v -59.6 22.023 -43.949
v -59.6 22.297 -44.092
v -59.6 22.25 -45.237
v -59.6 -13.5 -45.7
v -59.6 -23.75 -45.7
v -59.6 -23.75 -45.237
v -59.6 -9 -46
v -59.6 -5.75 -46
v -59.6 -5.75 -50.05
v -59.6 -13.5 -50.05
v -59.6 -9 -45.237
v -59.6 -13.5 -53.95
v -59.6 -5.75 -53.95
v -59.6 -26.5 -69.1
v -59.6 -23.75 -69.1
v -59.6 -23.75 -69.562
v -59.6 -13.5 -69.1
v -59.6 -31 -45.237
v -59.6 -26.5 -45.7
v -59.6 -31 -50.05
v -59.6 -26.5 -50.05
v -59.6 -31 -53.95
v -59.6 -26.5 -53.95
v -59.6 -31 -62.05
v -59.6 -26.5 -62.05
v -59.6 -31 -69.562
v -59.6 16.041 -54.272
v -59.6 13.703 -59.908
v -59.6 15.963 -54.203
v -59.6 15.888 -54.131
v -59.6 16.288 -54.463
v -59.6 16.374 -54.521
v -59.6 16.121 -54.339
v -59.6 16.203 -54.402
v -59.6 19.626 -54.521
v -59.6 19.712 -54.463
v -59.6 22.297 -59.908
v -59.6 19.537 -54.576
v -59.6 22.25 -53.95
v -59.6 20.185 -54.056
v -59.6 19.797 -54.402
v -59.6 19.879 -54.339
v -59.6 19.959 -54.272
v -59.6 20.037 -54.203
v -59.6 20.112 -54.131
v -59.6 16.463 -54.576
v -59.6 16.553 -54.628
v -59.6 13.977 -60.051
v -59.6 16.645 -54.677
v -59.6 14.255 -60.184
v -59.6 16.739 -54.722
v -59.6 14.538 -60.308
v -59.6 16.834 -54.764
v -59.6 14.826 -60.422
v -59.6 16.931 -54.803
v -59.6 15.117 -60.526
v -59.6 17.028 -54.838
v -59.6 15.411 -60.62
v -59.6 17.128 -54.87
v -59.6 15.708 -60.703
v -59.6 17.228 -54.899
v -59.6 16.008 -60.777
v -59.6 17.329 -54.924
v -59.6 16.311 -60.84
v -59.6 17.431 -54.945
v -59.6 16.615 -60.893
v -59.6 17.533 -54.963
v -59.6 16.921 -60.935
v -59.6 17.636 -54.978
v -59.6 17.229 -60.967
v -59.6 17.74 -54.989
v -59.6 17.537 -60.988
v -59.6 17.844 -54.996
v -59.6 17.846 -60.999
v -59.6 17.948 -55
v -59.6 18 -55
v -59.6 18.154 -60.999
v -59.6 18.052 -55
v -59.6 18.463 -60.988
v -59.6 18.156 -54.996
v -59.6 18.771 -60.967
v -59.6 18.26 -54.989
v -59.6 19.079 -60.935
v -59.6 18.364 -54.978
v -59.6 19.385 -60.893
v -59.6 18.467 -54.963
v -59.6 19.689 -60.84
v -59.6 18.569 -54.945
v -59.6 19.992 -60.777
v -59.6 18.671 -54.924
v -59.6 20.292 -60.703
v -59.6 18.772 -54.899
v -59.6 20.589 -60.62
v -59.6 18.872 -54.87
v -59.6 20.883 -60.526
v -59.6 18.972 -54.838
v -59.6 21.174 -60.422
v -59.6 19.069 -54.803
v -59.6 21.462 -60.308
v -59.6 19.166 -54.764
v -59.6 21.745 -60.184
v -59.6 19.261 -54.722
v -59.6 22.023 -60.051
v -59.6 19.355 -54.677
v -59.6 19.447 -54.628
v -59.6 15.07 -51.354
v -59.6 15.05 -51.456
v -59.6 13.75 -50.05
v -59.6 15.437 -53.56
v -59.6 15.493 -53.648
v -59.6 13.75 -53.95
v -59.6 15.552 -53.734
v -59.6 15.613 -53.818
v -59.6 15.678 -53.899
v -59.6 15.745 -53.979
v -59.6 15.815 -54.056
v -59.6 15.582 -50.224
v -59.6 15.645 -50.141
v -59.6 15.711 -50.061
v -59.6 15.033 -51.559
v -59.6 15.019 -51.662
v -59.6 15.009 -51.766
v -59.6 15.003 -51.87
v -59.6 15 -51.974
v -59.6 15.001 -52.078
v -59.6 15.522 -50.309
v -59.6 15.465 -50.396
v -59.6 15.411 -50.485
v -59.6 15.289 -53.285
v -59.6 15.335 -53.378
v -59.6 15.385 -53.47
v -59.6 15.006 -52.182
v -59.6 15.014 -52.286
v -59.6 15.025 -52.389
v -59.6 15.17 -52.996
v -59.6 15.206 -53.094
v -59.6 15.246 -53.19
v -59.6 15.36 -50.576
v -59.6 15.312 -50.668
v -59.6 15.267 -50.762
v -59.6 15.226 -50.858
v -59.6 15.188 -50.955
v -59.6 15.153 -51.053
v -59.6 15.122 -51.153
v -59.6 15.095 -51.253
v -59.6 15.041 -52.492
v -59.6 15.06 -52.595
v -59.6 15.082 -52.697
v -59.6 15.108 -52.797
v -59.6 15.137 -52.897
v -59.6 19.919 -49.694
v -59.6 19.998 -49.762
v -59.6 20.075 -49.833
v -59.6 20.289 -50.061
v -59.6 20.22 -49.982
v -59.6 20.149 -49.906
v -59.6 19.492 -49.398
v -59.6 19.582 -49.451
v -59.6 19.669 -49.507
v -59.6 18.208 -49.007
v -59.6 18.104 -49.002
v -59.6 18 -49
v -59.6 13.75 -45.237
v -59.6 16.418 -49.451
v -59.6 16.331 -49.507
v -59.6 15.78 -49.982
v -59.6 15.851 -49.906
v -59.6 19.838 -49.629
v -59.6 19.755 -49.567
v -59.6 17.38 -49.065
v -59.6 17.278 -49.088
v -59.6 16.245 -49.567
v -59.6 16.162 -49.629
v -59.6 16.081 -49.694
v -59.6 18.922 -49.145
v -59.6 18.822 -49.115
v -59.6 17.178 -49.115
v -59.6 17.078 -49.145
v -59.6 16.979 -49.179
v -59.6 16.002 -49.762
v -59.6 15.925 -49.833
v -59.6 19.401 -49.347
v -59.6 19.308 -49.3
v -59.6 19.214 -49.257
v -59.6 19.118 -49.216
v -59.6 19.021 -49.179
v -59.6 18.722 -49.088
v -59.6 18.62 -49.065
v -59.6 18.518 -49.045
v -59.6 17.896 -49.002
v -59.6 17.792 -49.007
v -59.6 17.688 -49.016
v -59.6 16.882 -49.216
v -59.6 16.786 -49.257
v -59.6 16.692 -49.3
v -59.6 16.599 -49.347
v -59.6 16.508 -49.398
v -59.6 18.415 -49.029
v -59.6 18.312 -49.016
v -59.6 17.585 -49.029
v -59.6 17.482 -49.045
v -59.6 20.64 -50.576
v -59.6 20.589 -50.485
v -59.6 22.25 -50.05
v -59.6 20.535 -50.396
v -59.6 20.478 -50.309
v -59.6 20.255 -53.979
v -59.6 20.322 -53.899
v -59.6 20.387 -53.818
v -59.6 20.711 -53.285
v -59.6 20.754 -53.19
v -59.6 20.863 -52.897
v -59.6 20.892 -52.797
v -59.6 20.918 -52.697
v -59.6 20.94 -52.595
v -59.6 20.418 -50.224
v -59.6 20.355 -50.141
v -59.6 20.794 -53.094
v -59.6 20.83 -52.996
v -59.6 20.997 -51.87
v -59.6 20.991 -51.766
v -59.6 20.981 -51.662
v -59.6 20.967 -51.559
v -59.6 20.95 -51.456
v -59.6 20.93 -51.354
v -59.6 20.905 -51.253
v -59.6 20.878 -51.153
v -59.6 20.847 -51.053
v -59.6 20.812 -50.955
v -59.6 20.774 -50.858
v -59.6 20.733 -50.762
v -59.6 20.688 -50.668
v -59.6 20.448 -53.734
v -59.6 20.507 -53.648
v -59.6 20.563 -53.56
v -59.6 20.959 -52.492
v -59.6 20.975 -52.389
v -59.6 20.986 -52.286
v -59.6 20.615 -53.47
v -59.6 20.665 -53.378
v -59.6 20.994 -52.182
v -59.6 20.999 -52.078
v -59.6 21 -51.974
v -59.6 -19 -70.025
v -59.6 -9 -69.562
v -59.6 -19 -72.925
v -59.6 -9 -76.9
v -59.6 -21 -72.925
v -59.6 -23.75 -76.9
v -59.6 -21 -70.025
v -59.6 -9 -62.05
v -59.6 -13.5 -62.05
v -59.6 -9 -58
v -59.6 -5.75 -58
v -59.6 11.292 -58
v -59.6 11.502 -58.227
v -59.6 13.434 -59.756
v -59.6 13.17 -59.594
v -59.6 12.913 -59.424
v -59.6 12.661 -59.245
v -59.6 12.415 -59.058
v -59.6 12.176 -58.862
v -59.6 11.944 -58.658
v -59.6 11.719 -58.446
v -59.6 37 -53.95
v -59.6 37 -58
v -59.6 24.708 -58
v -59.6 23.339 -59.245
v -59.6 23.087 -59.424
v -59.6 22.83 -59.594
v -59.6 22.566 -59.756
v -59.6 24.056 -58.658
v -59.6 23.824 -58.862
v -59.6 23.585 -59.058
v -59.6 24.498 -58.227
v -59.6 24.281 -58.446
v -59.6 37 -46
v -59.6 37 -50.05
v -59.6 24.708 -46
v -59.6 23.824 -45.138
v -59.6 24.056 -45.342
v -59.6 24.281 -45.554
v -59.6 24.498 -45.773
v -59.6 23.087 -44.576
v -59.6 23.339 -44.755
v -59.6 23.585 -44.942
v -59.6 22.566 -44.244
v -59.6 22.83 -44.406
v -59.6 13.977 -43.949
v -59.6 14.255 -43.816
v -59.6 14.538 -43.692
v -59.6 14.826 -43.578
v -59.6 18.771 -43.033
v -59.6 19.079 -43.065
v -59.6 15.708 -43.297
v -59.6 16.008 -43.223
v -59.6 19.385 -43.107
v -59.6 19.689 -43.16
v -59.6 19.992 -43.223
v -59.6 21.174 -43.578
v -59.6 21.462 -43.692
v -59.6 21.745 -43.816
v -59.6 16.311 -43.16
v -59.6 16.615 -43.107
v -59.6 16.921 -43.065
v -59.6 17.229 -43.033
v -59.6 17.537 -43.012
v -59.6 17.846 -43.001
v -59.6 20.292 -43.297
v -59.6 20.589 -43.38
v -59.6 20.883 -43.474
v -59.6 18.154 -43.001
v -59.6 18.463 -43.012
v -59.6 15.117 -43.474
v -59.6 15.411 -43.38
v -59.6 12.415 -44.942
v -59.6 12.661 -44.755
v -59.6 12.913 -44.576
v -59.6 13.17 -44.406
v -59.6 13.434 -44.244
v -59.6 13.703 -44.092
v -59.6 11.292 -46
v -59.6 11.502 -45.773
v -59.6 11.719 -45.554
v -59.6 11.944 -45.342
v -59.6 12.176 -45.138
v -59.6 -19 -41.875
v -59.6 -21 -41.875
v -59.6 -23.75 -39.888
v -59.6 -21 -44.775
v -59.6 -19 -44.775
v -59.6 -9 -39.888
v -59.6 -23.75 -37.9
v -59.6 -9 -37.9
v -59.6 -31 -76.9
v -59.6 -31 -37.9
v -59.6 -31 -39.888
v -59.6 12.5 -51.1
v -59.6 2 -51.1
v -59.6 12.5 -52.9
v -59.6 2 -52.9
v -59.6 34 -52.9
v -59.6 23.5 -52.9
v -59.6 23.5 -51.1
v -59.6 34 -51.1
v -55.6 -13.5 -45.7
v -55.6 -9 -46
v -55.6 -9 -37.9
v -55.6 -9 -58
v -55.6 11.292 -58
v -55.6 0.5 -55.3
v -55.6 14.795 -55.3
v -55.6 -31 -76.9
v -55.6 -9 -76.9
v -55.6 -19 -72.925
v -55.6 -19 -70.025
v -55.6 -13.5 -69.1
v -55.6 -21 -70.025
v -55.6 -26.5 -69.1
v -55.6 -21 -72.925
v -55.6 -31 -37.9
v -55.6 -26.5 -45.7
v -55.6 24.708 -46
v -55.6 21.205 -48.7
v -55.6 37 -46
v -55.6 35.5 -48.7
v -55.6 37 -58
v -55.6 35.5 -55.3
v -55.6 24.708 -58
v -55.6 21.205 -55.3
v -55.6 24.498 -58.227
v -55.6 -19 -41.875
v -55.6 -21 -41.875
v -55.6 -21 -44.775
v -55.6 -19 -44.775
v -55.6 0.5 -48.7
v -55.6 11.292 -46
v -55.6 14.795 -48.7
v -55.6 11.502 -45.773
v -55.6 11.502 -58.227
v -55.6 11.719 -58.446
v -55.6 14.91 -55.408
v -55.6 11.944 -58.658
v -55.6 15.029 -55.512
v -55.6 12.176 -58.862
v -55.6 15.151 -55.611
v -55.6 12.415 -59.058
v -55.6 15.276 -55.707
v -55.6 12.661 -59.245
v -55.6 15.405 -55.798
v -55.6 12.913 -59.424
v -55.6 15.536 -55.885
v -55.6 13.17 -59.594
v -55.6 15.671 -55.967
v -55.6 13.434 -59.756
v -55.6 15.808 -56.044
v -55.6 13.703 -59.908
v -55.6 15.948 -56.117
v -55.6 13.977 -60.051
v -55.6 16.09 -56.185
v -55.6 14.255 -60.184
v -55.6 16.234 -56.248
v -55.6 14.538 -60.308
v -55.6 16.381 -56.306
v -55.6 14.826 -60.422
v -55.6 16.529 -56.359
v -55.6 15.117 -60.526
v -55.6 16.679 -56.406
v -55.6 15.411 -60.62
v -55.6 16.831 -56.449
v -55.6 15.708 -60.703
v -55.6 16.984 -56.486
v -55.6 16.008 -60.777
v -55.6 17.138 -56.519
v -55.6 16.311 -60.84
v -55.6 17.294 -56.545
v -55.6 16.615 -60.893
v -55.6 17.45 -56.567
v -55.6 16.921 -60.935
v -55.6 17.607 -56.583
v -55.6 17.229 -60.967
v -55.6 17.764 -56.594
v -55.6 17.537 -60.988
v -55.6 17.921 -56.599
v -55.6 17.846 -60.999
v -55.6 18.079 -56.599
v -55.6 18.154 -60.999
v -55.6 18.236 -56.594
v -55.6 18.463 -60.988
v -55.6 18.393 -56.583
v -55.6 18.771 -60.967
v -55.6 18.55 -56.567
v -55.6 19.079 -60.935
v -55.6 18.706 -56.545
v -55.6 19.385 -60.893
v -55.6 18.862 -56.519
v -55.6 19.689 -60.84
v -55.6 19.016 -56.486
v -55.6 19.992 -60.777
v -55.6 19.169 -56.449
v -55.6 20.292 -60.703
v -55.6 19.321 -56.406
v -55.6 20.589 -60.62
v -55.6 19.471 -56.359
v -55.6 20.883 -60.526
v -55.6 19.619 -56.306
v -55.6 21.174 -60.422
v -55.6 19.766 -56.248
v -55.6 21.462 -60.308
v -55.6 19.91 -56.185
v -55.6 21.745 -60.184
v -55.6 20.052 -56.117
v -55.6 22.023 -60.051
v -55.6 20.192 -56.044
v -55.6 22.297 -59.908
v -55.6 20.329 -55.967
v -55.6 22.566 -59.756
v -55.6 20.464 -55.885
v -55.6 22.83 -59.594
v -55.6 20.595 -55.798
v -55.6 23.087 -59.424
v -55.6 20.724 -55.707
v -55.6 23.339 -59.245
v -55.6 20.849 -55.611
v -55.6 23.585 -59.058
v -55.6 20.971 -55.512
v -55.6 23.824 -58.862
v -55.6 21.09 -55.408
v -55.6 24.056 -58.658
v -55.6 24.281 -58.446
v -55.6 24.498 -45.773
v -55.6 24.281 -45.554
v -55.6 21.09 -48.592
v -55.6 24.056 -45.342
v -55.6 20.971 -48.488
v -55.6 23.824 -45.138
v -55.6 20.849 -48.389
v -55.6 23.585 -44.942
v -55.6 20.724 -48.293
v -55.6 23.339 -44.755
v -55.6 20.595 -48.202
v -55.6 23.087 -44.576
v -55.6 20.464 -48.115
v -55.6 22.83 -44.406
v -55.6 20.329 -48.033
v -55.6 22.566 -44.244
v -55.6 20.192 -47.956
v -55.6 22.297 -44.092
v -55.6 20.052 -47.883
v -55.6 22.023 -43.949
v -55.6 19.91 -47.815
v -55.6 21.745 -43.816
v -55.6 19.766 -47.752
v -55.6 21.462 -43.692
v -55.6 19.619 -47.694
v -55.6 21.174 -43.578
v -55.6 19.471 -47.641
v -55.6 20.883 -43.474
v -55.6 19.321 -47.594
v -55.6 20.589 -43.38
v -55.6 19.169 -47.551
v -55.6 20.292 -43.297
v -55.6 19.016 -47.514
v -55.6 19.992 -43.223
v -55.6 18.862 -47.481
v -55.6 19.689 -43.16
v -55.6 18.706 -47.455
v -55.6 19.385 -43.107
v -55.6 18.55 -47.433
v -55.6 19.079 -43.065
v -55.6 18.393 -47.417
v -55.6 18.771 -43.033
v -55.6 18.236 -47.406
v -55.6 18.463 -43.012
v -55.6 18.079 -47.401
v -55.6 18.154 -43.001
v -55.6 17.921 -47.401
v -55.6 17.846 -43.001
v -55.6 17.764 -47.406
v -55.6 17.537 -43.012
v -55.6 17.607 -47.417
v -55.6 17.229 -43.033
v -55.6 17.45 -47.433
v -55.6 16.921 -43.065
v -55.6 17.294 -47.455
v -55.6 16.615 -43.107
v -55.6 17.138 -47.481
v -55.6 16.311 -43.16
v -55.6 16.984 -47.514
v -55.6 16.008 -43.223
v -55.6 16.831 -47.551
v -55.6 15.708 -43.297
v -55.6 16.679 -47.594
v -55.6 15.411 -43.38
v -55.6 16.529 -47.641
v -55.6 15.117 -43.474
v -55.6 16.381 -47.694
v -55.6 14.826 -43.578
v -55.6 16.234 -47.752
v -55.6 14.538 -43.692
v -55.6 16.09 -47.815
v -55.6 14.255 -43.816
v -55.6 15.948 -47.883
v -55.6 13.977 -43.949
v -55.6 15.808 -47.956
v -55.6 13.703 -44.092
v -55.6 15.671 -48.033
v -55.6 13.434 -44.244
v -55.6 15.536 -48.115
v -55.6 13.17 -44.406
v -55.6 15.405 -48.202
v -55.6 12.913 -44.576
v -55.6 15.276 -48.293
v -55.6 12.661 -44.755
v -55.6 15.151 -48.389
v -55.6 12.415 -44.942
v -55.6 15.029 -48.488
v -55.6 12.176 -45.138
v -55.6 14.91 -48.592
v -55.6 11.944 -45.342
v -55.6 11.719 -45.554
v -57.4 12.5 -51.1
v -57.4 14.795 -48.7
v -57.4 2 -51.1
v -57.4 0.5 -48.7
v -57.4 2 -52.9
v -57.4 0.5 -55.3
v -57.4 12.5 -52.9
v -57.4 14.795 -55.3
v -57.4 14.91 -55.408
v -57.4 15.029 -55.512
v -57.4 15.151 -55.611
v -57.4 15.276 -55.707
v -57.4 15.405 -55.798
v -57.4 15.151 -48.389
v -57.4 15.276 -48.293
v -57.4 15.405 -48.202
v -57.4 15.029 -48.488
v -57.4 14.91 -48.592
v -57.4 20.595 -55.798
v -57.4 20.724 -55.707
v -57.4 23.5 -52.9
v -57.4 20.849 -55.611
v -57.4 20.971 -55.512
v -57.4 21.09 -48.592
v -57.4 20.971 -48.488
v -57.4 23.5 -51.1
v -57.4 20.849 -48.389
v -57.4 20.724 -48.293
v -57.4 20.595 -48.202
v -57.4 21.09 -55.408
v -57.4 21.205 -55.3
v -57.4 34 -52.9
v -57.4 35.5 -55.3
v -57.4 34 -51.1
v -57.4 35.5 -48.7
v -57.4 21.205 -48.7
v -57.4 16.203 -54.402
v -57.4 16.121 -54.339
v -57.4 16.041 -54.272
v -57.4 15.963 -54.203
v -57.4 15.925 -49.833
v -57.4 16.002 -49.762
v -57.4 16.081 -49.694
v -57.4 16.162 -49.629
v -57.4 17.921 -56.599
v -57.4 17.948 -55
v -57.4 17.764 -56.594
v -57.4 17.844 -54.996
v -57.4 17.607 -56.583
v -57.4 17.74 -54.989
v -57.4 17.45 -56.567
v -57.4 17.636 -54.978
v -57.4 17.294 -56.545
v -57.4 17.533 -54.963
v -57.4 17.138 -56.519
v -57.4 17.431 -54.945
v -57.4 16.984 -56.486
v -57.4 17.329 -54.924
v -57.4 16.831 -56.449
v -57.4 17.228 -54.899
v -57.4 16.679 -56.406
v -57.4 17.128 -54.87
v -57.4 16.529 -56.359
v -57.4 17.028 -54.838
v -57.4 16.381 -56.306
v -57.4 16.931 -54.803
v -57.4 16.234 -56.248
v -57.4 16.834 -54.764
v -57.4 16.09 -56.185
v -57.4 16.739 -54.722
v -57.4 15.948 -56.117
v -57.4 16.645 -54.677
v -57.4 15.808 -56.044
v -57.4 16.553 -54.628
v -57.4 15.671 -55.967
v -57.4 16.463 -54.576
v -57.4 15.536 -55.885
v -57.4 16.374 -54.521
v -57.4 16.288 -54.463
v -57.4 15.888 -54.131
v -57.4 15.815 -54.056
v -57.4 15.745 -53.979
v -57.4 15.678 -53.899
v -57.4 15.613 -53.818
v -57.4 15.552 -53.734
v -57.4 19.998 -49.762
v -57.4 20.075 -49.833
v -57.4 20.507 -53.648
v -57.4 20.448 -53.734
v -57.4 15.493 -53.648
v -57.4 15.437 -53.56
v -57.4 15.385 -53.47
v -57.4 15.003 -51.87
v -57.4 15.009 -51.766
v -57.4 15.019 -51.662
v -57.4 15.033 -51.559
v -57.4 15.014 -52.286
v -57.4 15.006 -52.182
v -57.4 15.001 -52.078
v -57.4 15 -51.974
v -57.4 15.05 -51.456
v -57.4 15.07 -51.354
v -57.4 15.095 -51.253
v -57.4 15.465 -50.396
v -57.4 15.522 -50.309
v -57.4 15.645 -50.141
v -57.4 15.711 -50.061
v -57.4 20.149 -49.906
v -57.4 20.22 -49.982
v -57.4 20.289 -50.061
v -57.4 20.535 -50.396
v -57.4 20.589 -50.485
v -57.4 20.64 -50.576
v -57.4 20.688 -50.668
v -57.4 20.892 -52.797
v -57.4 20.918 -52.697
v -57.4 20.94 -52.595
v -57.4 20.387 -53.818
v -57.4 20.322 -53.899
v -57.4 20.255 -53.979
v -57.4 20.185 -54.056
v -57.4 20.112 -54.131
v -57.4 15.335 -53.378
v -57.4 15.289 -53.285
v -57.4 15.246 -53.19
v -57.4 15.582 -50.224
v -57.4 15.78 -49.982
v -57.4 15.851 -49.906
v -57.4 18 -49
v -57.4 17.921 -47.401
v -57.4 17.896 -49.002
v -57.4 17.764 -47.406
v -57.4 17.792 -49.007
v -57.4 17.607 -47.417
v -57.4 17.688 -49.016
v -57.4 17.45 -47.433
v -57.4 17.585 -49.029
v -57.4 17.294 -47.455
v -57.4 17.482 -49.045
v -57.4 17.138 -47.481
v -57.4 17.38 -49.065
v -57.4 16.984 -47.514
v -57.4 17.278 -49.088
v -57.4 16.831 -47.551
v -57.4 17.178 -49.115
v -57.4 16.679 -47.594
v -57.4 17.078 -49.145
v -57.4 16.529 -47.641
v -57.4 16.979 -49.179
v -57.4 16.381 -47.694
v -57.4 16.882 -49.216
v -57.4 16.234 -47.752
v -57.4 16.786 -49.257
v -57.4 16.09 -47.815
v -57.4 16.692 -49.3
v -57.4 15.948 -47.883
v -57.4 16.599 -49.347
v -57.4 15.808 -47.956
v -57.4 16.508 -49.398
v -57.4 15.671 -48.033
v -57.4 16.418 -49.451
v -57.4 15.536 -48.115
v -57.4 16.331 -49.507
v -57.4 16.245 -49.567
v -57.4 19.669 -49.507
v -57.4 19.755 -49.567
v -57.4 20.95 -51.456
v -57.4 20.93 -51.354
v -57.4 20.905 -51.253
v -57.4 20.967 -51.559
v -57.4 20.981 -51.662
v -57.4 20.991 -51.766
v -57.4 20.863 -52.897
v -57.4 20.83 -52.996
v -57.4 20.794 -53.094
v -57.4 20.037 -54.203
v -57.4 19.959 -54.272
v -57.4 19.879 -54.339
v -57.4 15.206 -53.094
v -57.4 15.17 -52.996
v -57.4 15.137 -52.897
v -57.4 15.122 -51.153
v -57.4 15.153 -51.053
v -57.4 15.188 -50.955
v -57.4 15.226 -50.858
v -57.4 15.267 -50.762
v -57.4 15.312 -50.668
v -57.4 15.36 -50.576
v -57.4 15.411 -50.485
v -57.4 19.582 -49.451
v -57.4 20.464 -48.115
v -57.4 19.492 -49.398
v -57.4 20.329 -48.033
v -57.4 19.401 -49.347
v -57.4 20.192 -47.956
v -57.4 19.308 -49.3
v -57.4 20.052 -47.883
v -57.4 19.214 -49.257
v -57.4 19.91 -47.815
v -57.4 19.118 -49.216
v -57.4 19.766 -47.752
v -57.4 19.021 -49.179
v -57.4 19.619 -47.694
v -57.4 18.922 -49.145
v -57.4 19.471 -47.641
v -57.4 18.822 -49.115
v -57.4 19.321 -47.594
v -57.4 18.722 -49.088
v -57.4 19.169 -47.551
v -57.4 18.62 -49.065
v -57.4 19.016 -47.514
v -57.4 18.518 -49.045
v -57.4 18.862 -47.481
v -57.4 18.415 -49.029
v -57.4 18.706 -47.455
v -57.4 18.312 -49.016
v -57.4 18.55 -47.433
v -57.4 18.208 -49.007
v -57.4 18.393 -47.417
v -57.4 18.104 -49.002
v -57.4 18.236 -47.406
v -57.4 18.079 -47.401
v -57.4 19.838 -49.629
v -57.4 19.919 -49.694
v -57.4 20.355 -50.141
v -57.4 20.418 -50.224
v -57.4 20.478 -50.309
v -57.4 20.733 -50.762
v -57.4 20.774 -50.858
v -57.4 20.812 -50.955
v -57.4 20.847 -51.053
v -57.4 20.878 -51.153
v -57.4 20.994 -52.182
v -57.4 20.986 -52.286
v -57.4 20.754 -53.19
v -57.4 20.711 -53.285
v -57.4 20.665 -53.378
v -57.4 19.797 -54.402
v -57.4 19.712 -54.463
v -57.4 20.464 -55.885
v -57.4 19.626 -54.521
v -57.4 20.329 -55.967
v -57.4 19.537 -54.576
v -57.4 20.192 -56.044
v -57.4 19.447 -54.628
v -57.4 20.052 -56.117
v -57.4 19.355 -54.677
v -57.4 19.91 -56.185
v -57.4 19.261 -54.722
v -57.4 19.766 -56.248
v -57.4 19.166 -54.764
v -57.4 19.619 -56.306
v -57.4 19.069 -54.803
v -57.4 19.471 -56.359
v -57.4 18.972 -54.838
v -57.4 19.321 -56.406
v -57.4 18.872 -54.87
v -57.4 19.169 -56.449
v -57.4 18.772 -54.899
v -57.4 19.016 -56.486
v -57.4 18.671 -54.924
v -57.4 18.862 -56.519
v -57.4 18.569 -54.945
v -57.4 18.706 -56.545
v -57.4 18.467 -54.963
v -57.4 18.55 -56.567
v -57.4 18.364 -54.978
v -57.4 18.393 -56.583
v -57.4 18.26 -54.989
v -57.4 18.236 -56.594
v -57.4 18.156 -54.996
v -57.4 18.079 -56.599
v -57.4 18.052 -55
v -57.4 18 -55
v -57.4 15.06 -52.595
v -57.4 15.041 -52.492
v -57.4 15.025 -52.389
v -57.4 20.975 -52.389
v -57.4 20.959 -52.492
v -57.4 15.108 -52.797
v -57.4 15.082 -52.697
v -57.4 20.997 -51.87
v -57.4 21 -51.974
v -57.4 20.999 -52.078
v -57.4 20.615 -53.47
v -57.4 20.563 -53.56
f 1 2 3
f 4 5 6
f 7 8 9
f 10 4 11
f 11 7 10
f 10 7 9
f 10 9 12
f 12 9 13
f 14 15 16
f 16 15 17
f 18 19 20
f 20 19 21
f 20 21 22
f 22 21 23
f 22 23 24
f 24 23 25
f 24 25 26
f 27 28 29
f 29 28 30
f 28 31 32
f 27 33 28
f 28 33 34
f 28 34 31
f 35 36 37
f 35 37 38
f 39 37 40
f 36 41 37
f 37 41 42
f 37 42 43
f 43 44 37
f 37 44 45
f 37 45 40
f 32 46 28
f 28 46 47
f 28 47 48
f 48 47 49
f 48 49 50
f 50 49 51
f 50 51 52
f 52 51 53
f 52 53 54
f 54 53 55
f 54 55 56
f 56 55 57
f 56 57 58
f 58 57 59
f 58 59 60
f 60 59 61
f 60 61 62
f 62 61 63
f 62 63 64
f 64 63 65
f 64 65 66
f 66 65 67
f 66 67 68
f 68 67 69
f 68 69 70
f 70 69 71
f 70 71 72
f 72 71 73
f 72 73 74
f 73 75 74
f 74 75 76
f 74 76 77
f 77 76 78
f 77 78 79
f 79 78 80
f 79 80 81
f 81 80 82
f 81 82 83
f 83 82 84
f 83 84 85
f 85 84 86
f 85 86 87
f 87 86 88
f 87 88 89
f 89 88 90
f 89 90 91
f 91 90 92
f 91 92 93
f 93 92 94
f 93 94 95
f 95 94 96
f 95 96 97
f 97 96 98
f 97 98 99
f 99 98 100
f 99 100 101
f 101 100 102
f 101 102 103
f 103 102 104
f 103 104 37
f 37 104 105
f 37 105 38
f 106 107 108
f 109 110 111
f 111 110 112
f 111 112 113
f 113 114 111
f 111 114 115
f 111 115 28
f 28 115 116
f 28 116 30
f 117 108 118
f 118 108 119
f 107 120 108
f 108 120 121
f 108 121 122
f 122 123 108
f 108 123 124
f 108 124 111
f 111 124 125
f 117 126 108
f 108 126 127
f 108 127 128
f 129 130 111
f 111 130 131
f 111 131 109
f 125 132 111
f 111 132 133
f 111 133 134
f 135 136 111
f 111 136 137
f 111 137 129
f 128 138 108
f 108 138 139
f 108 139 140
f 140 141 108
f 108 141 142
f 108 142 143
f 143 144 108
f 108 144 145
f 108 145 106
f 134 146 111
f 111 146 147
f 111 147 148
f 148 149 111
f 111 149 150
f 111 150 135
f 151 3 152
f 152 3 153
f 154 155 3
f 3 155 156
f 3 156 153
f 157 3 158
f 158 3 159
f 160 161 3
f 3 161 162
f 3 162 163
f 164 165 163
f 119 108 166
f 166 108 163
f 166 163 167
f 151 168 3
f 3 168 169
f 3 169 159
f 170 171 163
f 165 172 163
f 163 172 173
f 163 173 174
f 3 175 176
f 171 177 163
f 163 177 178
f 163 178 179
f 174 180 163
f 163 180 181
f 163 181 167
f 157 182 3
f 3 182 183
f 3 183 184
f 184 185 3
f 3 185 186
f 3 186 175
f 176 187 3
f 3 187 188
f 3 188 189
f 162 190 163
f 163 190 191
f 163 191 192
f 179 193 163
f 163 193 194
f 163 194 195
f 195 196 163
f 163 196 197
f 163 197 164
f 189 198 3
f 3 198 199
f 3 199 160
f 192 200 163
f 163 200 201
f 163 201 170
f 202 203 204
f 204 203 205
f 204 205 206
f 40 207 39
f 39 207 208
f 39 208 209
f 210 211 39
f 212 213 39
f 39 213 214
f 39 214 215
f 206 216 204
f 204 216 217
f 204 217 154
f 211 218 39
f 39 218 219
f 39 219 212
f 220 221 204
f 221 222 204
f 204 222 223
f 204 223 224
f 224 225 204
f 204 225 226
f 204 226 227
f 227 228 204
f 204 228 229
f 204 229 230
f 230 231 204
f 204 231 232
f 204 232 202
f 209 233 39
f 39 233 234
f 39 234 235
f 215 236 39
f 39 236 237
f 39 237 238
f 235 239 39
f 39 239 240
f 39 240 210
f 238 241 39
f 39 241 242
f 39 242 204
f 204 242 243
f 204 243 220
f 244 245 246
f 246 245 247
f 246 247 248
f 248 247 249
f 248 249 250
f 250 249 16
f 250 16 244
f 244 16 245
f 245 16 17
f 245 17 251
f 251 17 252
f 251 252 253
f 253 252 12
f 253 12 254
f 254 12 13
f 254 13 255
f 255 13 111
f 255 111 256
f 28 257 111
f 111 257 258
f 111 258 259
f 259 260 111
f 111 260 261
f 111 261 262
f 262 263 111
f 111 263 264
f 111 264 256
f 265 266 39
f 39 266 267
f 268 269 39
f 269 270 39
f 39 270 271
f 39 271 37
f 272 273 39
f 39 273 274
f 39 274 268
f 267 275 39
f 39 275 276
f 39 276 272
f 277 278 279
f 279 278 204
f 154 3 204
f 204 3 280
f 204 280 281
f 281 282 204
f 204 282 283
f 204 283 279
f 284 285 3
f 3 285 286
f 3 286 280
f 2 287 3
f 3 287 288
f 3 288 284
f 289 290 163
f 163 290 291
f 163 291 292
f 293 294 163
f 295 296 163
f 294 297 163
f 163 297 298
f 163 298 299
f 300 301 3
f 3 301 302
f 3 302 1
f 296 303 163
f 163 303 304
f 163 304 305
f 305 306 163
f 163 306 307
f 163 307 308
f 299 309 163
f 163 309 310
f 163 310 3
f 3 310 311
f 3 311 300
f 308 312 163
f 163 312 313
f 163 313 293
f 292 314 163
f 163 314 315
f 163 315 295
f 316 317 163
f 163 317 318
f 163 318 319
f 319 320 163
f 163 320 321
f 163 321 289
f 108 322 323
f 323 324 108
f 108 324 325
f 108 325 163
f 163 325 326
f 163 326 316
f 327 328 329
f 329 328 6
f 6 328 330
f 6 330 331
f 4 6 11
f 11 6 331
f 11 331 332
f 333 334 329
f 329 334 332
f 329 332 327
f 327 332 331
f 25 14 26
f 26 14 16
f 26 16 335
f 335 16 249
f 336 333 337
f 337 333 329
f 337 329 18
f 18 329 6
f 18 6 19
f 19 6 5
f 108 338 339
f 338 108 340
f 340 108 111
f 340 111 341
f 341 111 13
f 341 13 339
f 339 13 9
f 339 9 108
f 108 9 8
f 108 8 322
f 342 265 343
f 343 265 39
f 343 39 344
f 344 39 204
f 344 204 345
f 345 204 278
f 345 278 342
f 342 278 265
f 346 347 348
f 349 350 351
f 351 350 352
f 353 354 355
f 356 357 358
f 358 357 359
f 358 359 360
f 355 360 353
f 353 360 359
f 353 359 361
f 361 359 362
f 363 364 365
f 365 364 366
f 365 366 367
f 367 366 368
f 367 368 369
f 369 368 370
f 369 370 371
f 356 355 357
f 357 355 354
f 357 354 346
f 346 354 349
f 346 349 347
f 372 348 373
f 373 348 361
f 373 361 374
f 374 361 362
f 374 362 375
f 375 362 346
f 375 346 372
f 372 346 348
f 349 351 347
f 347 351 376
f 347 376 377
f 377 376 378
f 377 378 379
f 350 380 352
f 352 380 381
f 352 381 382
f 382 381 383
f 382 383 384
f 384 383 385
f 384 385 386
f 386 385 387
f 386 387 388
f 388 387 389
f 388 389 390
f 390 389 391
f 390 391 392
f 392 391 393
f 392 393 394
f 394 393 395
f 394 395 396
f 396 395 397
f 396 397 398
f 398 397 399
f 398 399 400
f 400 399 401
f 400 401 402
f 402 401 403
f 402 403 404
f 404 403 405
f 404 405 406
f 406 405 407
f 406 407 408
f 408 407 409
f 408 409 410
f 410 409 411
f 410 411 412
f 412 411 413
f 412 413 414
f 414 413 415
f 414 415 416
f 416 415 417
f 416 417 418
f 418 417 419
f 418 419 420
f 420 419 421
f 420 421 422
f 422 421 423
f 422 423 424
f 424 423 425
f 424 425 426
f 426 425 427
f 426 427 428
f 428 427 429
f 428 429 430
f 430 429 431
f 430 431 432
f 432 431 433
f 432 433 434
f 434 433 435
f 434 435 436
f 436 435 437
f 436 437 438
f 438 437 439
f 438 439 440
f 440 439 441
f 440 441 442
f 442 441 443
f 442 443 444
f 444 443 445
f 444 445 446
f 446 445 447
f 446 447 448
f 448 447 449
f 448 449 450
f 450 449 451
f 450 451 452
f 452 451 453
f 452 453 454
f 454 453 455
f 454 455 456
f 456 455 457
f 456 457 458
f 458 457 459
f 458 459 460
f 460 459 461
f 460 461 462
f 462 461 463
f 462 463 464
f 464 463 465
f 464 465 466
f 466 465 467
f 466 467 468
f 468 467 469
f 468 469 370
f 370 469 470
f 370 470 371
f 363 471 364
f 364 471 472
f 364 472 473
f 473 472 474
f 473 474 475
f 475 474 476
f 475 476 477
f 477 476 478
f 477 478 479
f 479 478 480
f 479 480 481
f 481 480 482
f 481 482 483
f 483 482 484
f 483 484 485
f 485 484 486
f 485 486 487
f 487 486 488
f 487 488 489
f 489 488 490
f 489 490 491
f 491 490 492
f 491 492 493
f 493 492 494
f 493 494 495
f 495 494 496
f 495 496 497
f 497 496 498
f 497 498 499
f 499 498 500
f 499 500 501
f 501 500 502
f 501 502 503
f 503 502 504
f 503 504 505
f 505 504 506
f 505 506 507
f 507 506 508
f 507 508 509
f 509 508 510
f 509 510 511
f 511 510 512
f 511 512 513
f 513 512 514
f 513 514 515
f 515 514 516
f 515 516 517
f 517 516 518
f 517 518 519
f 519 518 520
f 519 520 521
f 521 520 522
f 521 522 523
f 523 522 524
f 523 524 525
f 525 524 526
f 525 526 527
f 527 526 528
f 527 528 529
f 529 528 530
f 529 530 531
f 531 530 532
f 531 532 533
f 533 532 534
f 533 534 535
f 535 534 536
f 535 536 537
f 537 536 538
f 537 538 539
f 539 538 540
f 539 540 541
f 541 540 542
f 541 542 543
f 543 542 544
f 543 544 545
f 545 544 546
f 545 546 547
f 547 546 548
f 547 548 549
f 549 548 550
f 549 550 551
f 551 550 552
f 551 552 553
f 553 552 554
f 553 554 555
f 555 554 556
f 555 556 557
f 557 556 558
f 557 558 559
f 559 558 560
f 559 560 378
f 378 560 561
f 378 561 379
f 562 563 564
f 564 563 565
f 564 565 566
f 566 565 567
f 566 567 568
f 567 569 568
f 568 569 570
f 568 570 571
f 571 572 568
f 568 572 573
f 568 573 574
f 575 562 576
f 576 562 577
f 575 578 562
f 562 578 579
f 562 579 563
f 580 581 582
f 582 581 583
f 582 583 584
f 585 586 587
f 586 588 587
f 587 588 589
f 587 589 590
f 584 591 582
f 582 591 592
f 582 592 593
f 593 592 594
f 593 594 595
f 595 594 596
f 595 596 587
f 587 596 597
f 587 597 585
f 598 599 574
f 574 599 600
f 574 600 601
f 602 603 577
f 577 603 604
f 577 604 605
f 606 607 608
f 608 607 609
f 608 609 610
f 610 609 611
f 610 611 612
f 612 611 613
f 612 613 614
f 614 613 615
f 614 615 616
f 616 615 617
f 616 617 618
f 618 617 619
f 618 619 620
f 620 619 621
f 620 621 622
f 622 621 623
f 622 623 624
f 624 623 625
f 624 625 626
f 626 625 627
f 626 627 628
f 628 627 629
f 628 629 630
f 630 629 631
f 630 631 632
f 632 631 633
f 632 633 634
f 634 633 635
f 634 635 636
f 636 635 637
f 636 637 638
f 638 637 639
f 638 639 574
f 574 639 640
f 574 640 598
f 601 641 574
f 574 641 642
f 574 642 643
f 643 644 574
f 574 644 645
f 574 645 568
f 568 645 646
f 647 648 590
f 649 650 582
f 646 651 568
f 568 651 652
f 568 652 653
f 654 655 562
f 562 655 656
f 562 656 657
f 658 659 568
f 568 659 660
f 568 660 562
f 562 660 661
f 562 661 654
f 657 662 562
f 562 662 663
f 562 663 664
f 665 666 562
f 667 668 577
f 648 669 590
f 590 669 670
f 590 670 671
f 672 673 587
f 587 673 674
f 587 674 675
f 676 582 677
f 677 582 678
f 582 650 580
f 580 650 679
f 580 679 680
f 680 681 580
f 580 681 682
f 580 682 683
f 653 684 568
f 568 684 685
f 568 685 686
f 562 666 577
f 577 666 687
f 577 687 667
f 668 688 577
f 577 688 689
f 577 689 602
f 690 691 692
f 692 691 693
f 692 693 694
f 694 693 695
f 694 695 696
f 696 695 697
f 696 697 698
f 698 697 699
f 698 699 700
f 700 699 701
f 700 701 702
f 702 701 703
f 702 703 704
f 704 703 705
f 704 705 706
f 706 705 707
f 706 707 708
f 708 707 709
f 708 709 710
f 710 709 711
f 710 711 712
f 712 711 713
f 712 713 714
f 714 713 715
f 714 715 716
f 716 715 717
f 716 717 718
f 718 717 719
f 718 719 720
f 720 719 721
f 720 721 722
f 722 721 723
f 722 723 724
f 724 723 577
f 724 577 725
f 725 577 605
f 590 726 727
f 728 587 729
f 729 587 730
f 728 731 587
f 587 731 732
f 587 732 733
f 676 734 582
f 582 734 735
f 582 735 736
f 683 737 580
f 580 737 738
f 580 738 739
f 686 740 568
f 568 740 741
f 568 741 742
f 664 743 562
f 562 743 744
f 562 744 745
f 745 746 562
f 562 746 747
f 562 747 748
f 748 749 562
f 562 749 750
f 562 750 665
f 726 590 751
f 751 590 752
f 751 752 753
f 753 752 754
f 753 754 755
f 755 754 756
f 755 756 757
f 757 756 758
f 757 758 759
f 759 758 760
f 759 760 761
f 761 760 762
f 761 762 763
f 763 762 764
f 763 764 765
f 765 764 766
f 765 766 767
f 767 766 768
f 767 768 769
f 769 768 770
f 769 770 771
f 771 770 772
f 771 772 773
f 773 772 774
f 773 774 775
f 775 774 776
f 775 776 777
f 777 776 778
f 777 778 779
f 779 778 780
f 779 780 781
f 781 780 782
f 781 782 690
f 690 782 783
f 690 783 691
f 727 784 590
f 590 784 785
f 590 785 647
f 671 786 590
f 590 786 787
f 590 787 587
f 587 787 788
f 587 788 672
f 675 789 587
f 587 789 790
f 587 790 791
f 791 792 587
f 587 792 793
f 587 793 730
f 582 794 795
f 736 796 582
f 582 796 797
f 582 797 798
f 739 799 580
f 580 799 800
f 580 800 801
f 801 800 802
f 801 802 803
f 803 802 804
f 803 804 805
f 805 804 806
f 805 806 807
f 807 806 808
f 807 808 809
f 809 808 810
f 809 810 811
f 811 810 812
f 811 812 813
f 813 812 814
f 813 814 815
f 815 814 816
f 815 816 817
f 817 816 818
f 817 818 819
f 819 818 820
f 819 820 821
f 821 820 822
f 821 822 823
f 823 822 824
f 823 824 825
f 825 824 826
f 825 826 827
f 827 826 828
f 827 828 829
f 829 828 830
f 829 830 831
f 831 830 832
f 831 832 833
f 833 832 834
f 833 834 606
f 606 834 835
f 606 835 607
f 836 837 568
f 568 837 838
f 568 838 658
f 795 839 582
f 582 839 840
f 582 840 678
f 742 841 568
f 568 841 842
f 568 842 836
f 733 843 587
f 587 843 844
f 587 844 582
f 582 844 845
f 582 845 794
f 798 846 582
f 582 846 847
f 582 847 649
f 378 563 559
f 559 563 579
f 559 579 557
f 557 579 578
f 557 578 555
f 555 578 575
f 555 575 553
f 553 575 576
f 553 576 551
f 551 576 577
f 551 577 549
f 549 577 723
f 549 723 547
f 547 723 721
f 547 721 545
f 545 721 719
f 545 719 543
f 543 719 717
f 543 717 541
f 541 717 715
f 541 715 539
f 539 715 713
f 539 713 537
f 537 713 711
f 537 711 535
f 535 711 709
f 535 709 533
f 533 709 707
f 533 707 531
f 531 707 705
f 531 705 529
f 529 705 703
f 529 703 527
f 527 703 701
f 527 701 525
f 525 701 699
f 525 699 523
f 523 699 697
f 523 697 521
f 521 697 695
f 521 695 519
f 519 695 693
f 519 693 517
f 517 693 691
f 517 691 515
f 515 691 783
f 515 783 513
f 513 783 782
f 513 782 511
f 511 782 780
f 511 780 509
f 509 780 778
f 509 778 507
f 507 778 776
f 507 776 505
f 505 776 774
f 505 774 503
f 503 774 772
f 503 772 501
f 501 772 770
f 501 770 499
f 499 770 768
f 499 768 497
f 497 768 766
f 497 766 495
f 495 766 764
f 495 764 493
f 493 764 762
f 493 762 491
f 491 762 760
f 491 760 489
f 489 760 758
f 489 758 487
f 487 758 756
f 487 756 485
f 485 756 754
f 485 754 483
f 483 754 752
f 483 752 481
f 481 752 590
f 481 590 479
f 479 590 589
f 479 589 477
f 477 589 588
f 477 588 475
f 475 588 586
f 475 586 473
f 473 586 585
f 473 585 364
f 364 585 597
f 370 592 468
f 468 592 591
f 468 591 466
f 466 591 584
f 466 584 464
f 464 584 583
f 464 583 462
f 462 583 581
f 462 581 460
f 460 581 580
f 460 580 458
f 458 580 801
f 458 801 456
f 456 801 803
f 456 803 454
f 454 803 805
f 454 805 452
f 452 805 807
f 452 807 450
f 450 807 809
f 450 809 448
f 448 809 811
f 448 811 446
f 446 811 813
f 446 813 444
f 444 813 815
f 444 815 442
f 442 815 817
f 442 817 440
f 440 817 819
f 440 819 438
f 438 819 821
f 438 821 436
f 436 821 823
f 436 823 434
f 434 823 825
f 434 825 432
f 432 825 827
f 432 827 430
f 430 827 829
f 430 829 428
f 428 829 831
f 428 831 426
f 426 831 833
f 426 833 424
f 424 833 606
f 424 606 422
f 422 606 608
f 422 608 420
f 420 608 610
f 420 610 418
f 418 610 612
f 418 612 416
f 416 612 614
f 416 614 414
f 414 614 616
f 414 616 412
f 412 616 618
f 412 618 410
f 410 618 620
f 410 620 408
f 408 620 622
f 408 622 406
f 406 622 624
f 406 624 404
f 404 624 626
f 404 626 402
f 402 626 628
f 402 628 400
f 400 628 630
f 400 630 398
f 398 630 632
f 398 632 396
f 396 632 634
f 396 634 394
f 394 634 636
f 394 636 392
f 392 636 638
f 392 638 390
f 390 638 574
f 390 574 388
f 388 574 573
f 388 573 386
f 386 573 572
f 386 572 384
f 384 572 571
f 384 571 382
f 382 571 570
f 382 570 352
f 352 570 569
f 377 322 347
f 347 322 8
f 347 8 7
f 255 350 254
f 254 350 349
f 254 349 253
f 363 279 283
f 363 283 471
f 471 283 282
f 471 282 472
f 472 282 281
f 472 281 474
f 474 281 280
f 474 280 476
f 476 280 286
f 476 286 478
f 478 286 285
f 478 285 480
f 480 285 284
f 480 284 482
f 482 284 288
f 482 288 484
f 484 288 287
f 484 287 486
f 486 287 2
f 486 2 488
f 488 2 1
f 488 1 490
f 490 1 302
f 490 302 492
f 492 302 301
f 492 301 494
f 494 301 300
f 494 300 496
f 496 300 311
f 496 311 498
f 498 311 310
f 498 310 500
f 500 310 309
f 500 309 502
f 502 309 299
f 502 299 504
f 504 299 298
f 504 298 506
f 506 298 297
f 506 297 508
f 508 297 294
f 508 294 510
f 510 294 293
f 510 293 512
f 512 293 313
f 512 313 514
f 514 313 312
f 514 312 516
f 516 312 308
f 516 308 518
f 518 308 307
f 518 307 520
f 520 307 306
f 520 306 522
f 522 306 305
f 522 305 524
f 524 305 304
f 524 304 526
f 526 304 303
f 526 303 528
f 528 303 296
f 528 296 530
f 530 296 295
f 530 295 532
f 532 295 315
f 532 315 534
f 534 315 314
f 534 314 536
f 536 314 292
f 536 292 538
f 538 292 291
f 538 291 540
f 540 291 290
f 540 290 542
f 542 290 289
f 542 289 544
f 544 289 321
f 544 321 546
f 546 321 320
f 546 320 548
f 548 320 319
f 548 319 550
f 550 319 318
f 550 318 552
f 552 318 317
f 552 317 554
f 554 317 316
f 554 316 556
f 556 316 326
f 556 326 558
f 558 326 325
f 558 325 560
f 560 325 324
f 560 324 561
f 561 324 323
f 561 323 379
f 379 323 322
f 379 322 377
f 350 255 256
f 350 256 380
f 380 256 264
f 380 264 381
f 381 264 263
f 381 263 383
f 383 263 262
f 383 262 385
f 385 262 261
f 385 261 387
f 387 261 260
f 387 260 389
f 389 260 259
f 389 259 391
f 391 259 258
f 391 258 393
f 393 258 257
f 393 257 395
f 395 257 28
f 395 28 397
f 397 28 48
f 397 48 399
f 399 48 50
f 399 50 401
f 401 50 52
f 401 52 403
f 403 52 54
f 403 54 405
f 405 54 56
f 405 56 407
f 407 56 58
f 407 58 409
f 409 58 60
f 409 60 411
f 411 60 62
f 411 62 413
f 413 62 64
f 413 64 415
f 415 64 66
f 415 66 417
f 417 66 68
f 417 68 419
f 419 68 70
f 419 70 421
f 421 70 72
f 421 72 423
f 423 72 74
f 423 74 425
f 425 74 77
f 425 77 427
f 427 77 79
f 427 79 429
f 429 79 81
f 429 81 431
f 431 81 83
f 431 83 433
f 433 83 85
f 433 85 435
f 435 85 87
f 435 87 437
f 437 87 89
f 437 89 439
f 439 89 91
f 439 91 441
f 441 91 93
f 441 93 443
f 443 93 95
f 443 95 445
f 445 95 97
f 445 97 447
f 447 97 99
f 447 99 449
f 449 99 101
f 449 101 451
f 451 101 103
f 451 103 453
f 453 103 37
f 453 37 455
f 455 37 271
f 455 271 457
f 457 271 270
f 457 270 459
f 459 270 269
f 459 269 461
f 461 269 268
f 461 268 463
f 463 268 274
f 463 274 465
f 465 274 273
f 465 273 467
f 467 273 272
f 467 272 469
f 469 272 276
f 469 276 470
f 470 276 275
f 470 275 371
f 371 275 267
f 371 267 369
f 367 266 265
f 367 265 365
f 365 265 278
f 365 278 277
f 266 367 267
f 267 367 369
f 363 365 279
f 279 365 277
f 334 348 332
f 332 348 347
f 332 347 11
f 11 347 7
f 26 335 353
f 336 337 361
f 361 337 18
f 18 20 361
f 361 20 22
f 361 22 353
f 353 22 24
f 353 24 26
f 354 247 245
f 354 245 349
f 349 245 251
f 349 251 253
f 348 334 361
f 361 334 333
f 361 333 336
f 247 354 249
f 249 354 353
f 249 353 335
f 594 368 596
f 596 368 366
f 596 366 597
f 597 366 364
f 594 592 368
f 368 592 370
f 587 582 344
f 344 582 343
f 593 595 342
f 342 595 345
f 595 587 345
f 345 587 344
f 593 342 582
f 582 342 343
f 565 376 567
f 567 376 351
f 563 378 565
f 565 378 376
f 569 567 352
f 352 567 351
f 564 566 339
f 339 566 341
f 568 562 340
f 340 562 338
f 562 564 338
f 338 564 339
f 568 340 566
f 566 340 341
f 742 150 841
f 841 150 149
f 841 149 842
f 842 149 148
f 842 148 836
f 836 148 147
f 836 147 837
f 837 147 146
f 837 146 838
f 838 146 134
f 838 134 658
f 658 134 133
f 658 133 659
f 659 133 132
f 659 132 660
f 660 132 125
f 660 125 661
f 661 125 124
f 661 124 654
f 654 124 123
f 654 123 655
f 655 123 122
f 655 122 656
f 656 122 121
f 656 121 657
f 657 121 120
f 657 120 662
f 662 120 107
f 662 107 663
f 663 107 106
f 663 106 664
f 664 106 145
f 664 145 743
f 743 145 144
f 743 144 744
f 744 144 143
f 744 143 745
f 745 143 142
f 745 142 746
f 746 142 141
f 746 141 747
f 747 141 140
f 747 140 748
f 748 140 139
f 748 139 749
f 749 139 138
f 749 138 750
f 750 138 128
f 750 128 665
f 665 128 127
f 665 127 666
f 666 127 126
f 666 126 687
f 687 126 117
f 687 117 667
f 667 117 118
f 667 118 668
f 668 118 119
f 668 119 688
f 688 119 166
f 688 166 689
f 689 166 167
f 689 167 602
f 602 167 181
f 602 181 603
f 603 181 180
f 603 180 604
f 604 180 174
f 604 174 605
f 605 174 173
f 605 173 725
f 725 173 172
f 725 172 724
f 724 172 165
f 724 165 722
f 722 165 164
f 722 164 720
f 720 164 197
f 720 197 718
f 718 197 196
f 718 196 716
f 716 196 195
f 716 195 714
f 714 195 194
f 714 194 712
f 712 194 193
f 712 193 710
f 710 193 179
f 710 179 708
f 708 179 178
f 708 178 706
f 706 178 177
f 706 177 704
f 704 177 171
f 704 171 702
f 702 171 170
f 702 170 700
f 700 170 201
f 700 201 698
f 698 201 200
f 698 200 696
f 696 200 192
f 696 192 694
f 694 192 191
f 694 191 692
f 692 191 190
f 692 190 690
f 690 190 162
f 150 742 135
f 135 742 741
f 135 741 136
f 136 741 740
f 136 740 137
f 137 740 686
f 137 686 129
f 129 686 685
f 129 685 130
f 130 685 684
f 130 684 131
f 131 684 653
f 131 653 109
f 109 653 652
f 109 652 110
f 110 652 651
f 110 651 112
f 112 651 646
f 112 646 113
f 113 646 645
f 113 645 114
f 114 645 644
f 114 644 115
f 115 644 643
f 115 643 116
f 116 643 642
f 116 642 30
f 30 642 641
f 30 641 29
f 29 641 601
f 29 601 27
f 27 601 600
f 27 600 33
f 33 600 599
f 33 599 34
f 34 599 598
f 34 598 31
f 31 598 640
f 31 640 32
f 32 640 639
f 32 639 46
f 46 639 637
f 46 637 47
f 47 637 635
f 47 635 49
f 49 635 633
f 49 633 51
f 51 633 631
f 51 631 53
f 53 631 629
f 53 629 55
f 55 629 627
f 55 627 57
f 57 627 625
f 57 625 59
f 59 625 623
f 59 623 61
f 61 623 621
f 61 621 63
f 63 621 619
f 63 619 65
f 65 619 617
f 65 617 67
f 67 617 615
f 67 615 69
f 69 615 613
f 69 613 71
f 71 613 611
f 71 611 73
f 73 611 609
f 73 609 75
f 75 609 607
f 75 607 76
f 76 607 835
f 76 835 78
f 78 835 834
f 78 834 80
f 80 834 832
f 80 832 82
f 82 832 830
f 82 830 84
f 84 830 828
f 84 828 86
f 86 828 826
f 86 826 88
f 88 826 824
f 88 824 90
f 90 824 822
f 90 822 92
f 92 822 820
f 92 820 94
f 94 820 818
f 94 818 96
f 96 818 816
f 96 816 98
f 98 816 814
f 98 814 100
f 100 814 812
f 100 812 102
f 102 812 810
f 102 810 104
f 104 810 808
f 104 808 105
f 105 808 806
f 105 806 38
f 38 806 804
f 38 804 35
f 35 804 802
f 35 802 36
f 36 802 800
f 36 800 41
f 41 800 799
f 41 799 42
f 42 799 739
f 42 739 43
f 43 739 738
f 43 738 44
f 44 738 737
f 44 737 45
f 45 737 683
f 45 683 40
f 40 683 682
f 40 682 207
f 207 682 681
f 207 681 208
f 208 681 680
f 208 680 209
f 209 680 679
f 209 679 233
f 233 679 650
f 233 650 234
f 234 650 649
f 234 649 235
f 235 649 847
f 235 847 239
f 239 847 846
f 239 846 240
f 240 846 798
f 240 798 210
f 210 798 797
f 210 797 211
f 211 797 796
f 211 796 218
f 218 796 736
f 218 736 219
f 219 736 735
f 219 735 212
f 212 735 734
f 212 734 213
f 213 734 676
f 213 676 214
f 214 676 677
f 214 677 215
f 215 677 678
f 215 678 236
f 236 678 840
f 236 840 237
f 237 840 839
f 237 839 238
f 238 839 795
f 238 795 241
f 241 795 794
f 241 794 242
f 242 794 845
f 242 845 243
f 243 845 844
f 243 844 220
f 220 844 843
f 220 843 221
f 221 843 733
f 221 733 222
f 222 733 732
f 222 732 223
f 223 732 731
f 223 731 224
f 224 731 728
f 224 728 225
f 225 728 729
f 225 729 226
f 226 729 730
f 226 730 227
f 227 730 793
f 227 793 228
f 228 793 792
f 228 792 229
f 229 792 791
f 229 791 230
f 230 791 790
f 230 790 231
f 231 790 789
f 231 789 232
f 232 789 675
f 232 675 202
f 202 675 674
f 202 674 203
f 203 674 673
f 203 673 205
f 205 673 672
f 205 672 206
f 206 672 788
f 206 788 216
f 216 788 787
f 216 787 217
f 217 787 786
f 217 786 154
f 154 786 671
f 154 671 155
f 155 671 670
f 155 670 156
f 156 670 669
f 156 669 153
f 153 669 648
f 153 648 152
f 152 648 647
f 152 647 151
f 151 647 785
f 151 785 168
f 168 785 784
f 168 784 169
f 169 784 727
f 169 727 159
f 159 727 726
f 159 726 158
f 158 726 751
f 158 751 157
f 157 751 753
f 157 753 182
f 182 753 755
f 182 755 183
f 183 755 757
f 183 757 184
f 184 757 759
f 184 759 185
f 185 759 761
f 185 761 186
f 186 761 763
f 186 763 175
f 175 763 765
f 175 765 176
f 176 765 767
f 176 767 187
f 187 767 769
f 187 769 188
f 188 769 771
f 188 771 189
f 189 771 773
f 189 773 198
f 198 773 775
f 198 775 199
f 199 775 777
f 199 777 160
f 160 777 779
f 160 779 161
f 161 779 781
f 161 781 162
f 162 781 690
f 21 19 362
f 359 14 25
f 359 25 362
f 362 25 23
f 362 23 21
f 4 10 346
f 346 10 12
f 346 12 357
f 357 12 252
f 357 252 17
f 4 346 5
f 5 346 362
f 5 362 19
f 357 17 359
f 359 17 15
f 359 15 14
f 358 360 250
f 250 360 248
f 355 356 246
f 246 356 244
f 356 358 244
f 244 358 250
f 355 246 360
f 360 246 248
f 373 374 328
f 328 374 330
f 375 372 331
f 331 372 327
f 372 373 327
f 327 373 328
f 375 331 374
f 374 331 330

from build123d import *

# Parameters (mm, degrees)
BOSS_EXTRUDE1_START  = -59.6
SKETCH1_R            = 9
BOSS_EXTRUDE1_DEPTH  = 4
BOSS_EXTRUDE2_START  = -58
SKETCH2_W            = 4
SKETCH2_H            = 49
BOSS_EXTRUDE2_DEPTH  = 12
BOSS_EXTRUDE3_START  = -76.9
SKETCH3_W            = 4
SKETCH3_H            = 22
BOSS_EXTRUDE3_DEPTH  = 39
BOSS_EXTRUDE4_START  = -57.4
SKETCH4_R            = 4.6
BOSS_EXTRUDE4_DEPTH  = 2.3
BOSS_EXTRUDE5_START  = -55.3
SKETCH5_W            = 2.3
SKETCH5_H            = 17.5
BOSS_EXTRUDE5_DEPTH  = 6.6
BOSS_EXTRUDE6_START  = -52.9
SKETCH6_W            = 6
SKETCH6_H            = 10.5
BOSS_EXTRUDE6_DEPTH  = 1.8
BOSS_EXTRUDE7_START  = -55.3
SKETCH7_W            = 2.3
SKETCH7_H            = 17.5
BOSS_EXTRUDE7_DEPTH  = 6.6
BOSS_EXTRUDE8_START  = -52.9
SKETCH8_W            = 6
SKETCH8_H            = 10.5
BOSS_EXTRUDE8_DEPTH  = 1.8
BOSS_EXTRUDE9_START  = -60.6
SKETCH9_R            = 3
BOSS_EXTRUDE9_DEPTH  = 6
BOSS_EXTRUDE10_START = -69.1
SKETCH10_W           = 6
SKETCH10_H           = 13
BOSS_EXTRUDE10_DEPTH = 23.4
BOSS_EXTRUDE11_START = -72.925
SKETCH11_W           = 6
SKETCH11_H           = 2
BOSS_EXTRUDE11_DEPTH = 2.9
BOSS_EXTRUDE12_START = -44.775
SKETCH12_W           = 6
SKETCH12_H           = 2
BOSS_EXTRUDE12_DEPTH = 2.9


with BuildPart() as part:
    # Sketch1 → Boss-Extrude1 (new body)
    with BuildSketch(Plane(origin=(0, 0, 0), x_dir=(0, 0, -1), z_dir=(1, 0, 0)).offset(BOSS_EXTRUDE1_START)):
        with Locations((52, 18)):
            Circle(SKETCH1_R)
    extrude(amount=BOSS_EXTRUDE1_DEPTH)

    # Sketch2 → Boss-Extrude2 (add)
    with BuildSketch(Plane.XY.offset(BOSS_EXTRUDE2_START)):
        with Locations((-57.6, 12.5)):
            Rectangle(SKETCH2_W, SKETCH2_H)
    extrude(amount=BOSS_EXTRUDE2_DEPTH)

    # Sketch3 → Boss-Extrude3 (add)
    with BuildSketch(Plane.XY.offset(BOSS_EXTRUDE3_START)):
        with Locations((-57.6, -20)):
            Rectangle(SKETCH3_W, SKETCH3_H)
    extrude(amount=BOSS_EXTRUDE3_DEPTH)


with BuildPart() as body_2:
    # Sketch4 → Boss-Extrude4 (new body)
    with BuildSketch(Plane(origin=(0, 0, 0), x_dir=(0, 0, -1), z_dir=(1, 0, 0)).offset(BOSS_EXTRUDE4_START)):
        with Locations((52, 18)):
            Circle(SKETCH4_R)
    extrude(amount=BOSS_EXTRUDE4_DEPTH)


with BuildPart() as part_1:
    add(part.part)

    # Combine1: cut body 2
    add(body_2.part, mode=Mode.SUBTRACT)


with BuildPart() as body_2_2:
    # Sketch5 → Boss-Extrude5 (new body)
    with BuildSketch(Plane.XY.offset(BOSS_EXTRUDE5_START)):
        with Locations((-56.25, 26.75)):
            Rectangle(SKETCH5_W, SKETCH5_H)
    extrude(amount=BOSS_EXTRUDE5_DEPTH)


with BuildPart() as part_2:
    add(part_1.part)

    # Combine2: cut body 2 2
    add(body_2_2.part, mode=Mode.SUBTRACT)


with BuildPart() as body_2_3:
    # Sketch6 → Boss-Extrude6 (new body)
    with BuildSketch(Plane.XY.offset(BOSS_EXTRUDE6_START)):
        with Locations((-57.6, 28.75)):
            Rectangle(SKETCH6_W, SKETCH6_H)
    extrude(amount=BOSS_EXTRUDE6_DEPTH)


with BuildPart() as part_3:
    add(part_2.part)

    # Combine3: cut body 2 3
    add(body_2_3.part, mode=Mode.SUBTRACT)


with BuildPart() as body_2_4:
    # Sketch7 → Boss-Extrude7 (new body)
    with BuildSketch(Plane.XY.offset(BOSS_EXTRUDE7_START)):
        with Locations((-56.25, 9.25)):
            Rectangle(SKETCH7_W, SKETCH7_H)
    extrude(amount=BOSS_EXTRUDE7_DEPTH)


with BuildPart() as part_4:
    add(part_3.part)

    # Combine4: cut body 2 4
    add(body_2_4.part, mode=Mode.SUBTRACT)


with BuildPart() as body_2_5:
    # Sketch8 → Boss-Extrude8 (new body)
    with BuildSketch(Plane.XY.offset(BOSS_EXTRUDE8_START)):
        with Locations((-57.6, 7.25)):
            Rectangle(SKETCH8_W, SKETCH8_H)
    extrude(amount=BOSS_EXTRUDE8_DEPTH)


with BuildPart() as part_5:
    add(part_4.part)

    # Combine5: cut body 2 5
    add(body_2_5.part, mode=Mode.SUBTRACT)


with BuildPart() as body_2_6:
    # Sketch9 → Boss-Extrude9 (new body)
    with BuildSketch(Plane(origin=(0, 0, 0), x_dir=(0, 0, -1), z_dir=(1, 0, 0)).offset(BOSS_EXTRUDE9_START)):
        with Locations((52, 18)):
            Circle(SKETCH9_R)
    extrude(amount=BOSS_EXTRUDE9_DEPTH)


with BuildPart() as part_6:
    add(part_5.part)

    # Combine6: cut body 2 6
    add(body_2_6.part, mode=Mode.SUBTRACT)


with BuildPart() as body_2_7:
    # Sketch10 → Boss-Extrude10 (new body)
    with BuildSketch(Plane.XY.offset(BOSS_EXTRUDE10_START)):
        with Locations((-57.6, -20)):
            Rectangle(SKETCH10_W, SKETCH10_H)
    extrude(amount=BOSS_EXTRUDE10_DEPTH)


with BuildPart() as part_7:
    add(part_6.part)

    # Combine7: cut body 2 7
    add(body_2_7.part, mode=Mode.SUBTRACT)


with BuildPart() as body_2_8:
    # Sketch11 → Boss-Extrude11 (new body)
    with BuildSketch(Plane.XY.offset(BOSS_EXTRUDE11_START)):
        with Locations((-57.6, -20)):
            Rectangle(SKETCH11_W, SKETCH11_H)
    extrude(amount=BOSS_EXTRUDE11_DEPTH)


with BuildPart() as part_8:
    add(part_7.part)

    # Combine8: cut body 2 8
    add(body_2_8.part, mode=Mode.SUBTRACT)


with BuildPart() as body_2_9:
    # Sketch12 → Boss-Extrude12 (new body)
    with BuildSketch(Plane.XY.offset(BOSS_EXTRUDE12_START)):
        with Locations((-57.6, -20)):
            Rectangle(SKETCH12_W, SKETCH12_H)
    extrude(amount=BOSS_EXTRUDE12_DEPTH)


with BuildPart() as part_9:
    add(part_8.part)

    # Combine9: cut body 2 9
    add(body_2_9.part, mode=Mode.SUBTRACT)


solid = part_9.part
